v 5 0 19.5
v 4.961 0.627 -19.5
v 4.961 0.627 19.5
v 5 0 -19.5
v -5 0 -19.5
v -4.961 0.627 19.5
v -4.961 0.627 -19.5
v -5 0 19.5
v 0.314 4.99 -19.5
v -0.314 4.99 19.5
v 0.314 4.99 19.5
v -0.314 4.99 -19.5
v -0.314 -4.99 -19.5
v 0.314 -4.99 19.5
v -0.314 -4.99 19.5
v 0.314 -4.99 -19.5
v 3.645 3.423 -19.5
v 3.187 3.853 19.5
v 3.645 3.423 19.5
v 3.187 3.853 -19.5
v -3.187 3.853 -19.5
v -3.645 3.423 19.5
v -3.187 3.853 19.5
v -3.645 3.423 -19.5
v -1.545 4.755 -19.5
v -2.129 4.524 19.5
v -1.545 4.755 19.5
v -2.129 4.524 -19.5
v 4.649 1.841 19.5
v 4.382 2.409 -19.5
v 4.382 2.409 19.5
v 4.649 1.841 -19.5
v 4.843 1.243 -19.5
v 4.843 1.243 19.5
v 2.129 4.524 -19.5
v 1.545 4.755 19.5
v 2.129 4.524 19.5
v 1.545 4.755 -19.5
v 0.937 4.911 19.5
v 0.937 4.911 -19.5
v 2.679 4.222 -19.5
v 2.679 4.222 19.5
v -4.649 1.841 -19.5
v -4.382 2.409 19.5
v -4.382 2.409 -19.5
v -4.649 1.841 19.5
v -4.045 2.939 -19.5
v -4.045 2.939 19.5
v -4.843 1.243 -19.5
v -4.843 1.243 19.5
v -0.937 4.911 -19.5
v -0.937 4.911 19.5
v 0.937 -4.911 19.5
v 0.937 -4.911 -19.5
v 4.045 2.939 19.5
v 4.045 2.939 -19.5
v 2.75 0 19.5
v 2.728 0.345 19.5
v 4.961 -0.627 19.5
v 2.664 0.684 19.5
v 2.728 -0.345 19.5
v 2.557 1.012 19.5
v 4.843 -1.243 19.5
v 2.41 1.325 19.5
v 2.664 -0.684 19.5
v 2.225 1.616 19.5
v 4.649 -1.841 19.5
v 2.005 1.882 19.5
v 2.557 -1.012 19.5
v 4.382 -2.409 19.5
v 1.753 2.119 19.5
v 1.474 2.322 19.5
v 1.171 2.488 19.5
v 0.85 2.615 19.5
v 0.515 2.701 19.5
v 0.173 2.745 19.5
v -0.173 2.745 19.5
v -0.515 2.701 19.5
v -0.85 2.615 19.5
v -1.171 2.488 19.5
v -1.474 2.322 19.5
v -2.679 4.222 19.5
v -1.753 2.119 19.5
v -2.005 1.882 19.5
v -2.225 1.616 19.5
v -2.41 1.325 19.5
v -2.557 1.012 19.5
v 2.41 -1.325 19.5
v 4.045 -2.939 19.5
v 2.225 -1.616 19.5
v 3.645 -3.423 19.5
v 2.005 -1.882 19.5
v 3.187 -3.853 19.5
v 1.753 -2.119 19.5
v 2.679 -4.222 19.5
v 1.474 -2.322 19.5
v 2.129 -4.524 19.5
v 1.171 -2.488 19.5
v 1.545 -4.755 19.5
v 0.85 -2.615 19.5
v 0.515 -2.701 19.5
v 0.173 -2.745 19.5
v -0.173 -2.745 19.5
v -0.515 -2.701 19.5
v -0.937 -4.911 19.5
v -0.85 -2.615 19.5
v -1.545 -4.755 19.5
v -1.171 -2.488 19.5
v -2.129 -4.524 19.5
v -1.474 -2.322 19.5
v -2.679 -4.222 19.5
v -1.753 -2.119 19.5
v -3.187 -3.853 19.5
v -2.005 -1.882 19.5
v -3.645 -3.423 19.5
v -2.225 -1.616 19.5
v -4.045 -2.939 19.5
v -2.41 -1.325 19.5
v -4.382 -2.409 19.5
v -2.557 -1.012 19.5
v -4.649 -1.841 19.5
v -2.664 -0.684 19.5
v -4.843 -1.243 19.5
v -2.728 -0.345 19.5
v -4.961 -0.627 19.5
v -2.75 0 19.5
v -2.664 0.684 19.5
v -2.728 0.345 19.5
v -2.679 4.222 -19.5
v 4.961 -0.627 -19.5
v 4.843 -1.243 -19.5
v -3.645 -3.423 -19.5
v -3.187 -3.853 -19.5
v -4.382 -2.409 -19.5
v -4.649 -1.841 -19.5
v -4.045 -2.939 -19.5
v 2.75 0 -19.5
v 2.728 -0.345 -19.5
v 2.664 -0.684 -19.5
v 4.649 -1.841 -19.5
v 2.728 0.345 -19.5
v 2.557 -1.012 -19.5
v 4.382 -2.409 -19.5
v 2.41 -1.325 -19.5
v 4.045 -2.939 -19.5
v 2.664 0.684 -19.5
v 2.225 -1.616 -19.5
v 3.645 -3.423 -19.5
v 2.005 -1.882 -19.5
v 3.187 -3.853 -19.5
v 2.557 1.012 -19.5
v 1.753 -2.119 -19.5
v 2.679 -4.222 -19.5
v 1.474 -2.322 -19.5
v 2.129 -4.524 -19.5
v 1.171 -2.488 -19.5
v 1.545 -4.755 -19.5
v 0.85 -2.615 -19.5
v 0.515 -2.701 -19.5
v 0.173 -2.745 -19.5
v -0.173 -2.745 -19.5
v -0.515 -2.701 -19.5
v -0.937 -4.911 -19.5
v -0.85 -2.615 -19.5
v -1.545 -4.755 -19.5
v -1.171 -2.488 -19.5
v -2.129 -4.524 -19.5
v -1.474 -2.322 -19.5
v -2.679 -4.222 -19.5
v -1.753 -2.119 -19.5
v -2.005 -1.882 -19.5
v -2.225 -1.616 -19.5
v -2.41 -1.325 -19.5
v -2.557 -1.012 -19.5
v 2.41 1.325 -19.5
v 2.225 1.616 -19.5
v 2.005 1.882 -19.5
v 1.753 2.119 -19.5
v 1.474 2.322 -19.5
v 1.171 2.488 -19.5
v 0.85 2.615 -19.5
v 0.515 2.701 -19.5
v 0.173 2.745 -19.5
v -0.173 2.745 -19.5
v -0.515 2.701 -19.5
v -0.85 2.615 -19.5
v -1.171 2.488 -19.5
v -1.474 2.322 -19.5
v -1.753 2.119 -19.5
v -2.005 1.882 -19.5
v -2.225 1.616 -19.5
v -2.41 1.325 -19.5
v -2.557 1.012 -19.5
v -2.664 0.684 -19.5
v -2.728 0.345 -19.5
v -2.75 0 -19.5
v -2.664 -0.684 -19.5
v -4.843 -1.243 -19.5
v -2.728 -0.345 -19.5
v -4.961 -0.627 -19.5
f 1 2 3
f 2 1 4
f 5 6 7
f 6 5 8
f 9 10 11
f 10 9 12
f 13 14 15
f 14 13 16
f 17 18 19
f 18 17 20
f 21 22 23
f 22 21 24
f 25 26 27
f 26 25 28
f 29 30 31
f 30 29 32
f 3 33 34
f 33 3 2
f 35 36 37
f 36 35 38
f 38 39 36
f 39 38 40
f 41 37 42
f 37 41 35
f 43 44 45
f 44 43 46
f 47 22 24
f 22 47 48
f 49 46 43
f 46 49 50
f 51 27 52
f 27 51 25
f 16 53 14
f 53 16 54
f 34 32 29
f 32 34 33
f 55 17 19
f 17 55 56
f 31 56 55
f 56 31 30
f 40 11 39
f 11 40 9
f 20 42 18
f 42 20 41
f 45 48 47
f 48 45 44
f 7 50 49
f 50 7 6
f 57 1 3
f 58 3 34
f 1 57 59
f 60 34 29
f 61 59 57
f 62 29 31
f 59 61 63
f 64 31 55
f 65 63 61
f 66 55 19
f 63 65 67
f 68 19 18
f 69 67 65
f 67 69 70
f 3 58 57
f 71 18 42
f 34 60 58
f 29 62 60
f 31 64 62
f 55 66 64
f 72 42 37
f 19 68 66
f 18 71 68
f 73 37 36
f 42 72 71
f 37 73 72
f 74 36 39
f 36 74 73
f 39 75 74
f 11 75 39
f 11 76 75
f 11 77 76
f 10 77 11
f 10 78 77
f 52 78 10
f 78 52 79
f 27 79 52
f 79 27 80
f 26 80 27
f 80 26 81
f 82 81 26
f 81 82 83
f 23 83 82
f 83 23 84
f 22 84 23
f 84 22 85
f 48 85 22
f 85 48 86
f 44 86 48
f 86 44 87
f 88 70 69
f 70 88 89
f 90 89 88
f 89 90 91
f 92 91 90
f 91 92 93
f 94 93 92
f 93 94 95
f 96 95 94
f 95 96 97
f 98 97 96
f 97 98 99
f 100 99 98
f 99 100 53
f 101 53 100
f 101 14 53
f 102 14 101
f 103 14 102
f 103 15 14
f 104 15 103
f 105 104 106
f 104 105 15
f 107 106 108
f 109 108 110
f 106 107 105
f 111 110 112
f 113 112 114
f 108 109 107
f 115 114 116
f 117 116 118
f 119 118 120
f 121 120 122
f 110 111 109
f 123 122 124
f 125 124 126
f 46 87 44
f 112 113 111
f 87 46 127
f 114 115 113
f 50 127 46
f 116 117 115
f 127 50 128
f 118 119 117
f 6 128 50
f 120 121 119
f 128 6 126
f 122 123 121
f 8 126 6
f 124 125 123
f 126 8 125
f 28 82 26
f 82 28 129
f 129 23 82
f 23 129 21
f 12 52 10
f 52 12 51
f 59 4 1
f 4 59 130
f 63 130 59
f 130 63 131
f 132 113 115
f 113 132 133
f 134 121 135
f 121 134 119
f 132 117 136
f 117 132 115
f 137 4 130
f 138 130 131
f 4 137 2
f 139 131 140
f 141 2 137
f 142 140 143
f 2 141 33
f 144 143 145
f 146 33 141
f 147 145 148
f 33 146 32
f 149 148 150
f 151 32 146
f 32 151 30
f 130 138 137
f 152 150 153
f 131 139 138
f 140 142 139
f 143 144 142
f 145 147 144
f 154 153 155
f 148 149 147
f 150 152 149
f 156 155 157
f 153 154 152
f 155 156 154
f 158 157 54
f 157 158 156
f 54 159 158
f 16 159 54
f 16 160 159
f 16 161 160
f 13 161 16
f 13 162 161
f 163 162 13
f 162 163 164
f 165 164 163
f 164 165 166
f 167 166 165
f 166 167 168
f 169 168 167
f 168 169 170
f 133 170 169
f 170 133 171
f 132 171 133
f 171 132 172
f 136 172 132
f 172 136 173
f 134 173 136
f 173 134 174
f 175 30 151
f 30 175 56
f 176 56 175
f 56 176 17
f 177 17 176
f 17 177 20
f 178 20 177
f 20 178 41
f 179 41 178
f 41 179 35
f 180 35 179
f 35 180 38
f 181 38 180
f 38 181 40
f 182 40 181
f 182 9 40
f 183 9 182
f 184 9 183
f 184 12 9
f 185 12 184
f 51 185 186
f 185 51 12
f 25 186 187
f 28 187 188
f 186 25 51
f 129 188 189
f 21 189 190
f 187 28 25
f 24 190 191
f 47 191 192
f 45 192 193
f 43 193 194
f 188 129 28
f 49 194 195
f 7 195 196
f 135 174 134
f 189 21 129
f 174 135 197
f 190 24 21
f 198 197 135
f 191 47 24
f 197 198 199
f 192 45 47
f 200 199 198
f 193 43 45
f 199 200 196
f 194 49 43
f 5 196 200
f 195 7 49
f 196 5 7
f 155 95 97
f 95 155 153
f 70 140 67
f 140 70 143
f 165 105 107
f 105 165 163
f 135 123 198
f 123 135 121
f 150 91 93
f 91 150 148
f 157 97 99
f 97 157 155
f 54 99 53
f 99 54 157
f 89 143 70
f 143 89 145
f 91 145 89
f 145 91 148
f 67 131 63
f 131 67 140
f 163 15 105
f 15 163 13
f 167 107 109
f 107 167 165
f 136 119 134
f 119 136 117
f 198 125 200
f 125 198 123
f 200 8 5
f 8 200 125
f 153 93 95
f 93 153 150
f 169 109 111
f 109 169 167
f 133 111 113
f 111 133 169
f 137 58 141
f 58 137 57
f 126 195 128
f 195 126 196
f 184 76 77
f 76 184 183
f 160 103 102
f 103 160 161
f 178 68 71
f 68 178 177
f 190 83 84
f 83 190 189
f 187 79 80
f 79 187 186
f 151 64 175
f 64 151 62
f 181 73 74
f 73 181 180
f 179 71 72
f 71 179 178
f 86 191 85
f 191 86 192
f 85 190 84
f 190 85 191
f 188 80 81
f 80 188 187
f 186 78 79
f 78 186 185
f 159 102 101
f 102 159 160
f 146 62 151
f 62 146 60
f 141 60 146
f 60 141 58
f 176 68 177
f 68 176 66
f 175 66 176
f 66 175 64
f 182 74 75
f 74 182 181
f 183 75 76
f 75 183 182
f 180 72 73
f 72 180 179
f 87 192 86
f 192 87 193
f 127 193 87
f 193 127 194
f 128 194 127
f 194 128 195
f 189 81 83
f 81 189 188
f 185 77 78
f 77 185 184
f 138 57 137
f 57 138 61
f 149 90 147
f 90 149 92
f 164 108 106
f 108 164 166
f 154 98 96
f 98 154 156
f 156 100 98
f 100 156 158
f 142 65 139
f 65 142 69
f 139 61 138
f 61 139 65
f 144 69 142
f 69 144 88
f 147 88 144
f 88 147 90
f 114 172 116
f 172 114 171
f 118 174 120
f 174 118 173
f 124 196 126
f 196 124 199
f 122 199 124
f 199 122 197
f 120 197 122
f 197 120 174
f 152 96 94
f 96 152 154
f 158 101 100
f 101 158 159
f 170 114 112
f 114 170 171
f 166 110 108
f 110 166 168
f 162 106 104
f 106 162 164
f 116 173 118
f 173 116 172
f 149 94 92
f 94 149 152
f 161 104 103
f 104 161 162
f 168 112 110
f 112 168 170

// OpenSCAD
$fn = 50;


difference() {
	union() {
		translate(v = [0, 0, -19.5000000000]) {
			cylinder(h = 39, r = 5.0000000000);
		}
	}
	union() {
		translate(v = [0, 0, -100.0000000000]) {
			cylinder(h = 200, r = 2.7500000000);
		}
	}
}
